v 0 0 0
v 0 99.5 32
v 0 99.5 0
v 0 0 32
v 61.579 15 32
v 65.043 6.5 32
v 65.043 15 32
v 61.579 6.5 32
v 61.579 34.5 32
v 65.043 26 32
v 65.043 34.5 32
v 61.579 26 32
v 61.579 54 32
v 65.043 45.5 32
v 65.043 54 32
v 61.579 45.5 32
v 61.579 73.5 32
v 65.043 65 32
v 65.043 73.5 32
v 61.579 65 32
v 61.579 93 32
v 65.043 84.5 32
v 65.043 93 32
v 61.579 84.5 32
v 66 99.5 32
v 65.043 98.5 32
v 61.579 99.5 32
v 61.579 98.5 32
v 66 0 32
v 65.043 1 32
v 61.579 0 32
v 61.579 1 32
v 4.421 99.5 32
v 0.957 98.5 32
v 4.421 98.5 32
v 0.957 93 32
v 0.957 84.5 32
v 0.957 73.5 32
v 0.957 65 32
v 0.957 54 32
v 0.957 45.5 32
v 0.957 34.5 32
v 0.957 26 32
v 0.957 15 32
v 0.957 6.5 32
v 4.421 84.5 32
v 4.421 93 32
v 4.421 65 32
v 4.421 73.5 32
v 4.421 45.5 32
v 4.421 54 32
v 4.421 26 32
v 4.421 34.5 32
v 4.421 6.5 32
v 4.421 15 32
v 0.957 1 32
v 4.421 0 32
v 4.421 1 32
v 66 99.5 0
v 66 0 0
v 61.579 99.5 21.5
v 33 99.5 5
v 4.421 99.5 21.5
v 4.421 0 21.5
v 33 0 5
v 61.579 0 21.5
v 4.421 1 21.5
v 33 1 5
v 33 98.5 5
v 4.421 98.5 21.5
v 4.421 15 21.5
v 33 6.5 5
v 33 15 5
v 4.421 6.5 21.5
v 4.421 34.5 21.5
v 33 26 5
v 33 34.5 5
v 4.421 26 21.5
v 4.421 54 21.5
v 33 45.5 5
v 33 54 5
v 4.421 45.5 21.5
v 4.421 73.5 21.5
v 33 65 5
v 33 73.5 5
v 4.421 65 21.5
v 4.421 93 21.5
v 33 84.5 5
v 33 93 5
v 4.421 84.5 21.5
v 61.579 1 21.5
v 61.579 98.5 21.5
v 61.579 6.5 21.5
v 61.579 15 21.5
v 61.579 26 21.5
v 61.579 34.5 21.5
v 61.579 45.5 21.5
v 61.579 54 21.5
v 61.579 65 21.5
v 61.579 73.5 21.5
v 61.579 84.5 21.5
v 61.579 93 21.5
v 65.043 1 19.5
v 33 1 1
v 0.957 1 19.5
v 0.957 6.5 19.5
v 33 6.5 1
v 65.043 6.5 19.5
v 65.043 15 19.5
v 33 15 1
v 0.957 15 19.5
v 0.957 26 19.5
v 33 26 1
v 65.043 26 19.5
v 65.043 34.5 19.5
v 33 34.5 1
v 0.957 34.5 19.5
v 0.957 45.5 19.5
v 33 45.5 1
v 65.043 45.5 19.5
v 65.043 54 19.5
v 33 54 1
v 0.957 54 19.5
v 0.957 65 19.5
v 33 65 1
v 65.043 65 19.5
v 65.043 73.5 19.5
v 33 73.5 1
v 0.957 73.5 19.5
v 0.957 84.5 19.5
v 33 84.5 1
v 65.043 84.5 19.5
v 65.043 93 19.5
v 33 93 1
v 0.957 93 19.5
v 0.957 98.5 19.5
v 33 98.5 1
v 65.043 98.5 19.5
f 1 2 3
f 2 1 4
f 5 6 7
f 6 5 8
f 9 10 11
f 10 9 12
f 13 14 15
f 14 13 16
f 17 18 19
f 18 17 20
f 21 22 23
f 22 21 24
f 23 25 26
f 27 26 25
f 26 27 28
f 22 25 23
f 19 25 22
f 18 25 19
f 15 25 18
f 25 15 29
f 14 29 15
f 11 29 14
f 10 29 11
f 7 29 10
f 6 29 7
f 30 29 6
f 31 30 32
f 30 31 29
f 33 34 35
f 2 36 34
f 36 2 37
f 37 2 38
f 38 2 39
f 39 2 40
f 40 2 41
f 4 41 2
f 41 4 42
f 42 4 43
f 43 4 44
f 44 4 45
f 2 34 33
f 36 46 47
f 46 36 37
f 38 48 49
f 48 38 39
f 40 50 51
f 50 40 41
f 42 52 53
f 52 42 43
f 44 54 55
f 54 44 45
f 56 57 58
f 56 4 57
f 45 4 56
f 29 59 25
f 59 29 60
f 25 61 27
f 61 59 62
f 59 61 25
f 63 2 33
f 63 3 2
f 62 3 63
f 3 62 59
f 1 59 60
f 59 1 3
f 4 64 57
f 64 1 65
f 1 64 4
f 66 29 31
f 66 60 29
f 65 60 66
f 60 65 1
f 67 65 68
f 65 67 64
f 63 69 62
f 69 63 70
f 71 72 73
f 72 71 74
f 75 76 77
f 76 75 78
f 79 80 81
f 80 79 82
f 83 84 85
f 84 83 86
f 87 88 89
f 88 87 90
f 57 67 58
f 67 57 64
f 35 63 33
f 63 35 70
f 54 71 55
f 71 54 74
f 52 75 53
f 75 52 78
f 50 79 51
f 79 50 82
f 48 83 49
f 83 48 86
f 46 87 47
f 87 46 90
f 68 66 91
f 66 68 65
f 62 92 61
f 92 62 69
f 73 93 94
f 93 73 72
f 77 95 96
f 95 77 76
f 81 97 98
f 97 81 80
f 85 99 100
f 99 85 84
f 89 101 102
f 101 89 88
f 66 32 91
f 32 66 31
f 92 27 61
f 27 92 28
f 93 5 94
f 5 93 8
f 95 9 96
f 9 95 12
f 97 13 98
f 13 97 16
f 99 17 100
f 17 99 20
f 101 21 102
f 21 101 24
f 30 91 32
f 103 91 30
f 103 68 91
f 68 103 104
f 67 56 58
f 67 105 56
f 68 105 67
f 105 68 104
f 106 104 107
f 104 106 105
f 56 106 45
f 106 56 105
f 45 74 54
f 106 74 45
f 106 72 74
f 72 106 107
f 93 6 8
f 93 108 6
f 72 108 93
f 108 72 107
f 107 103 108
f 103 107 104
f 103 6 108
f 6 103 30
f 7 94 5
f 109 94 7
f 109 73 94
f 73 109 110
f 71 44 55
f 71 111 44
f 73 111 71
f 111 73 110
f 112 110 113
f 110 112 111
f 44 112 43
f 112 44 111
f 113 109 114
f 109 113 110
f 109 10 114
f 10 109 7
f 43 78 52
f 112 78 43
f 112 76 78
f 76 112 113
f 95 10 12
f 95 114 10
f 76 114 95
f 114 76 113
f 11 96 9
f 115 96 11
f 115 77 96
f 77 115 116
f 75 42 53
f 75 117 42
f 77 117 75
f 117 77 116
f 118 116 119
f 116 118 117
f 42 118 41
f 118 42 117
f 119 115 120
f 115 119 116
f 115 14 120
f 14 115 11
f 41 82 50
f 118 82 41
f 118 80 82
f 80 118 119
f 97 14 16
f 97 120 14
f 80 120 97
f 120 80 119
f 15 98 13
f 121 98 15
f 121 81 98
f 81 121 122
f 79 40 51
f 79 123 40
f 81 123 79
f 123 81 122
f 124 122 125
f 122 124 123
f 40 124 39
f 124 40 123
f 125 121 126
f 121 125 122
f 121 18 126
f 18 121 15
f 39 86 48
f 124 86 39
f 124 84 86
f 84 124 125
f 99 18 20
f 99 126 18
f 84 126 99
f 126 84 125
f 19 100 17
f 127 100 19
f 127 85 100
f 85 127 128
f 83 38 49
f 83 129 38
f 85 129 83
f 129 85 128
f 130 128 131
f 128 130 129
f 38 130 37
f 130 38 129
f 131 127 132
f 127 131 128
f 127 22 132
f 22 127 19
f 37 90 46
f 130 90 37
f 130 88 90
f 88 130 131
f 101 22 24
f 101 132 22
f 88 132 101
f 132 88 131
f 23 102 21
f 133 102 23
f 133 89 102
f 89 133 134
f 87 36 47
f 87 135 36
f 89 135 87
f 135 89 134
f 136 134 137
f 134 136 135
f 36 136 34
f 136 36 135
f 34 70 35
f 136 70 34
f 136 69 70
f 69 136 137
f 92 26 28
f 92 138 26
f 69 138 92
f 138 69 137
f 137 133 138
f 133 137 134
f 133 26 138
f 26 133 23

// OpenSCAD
$fn=200;
THICK = 1;

TILE_L = 14;
TILE_COUNT = 6;

BOX_W = 64;
BOX_L = 97.5;
BOX_H = 32;

difference() {
    cube(size = [
        BOX_W + (THICK * 2),
        BOX_L + (THICK * 2), 
        BOX_H]);

    translate([33, -5, 38])
        rotate([0, 90, 90]) 
            cylinder(h = 200, r = 33, $fn=6);

    tile_slot(1);
    tile_slot(1 + TILE_L);

    tile_slot(6.5 + TILE_L);
    tile_slot(6.5 + (TILE_L * 2));

    tile_slot(12 + (TILE_L * 2));
    tile_slot(12 + (TILE_L * 3));

    tile_slot(17.5 + (TILE_L * 3));
    tile_slot(17.5 + (TILE_L * 4));

    tile_slot(23 + (TILE_L * 4));
    tile_slot(23 + (TILE_L * 5));
}

module tile_slot(y) {
    translate([33, y, 38])
        rotate([0, 90, 90]) 
            cylinder(h = 5.5, r = 37, $fn=6);
}
